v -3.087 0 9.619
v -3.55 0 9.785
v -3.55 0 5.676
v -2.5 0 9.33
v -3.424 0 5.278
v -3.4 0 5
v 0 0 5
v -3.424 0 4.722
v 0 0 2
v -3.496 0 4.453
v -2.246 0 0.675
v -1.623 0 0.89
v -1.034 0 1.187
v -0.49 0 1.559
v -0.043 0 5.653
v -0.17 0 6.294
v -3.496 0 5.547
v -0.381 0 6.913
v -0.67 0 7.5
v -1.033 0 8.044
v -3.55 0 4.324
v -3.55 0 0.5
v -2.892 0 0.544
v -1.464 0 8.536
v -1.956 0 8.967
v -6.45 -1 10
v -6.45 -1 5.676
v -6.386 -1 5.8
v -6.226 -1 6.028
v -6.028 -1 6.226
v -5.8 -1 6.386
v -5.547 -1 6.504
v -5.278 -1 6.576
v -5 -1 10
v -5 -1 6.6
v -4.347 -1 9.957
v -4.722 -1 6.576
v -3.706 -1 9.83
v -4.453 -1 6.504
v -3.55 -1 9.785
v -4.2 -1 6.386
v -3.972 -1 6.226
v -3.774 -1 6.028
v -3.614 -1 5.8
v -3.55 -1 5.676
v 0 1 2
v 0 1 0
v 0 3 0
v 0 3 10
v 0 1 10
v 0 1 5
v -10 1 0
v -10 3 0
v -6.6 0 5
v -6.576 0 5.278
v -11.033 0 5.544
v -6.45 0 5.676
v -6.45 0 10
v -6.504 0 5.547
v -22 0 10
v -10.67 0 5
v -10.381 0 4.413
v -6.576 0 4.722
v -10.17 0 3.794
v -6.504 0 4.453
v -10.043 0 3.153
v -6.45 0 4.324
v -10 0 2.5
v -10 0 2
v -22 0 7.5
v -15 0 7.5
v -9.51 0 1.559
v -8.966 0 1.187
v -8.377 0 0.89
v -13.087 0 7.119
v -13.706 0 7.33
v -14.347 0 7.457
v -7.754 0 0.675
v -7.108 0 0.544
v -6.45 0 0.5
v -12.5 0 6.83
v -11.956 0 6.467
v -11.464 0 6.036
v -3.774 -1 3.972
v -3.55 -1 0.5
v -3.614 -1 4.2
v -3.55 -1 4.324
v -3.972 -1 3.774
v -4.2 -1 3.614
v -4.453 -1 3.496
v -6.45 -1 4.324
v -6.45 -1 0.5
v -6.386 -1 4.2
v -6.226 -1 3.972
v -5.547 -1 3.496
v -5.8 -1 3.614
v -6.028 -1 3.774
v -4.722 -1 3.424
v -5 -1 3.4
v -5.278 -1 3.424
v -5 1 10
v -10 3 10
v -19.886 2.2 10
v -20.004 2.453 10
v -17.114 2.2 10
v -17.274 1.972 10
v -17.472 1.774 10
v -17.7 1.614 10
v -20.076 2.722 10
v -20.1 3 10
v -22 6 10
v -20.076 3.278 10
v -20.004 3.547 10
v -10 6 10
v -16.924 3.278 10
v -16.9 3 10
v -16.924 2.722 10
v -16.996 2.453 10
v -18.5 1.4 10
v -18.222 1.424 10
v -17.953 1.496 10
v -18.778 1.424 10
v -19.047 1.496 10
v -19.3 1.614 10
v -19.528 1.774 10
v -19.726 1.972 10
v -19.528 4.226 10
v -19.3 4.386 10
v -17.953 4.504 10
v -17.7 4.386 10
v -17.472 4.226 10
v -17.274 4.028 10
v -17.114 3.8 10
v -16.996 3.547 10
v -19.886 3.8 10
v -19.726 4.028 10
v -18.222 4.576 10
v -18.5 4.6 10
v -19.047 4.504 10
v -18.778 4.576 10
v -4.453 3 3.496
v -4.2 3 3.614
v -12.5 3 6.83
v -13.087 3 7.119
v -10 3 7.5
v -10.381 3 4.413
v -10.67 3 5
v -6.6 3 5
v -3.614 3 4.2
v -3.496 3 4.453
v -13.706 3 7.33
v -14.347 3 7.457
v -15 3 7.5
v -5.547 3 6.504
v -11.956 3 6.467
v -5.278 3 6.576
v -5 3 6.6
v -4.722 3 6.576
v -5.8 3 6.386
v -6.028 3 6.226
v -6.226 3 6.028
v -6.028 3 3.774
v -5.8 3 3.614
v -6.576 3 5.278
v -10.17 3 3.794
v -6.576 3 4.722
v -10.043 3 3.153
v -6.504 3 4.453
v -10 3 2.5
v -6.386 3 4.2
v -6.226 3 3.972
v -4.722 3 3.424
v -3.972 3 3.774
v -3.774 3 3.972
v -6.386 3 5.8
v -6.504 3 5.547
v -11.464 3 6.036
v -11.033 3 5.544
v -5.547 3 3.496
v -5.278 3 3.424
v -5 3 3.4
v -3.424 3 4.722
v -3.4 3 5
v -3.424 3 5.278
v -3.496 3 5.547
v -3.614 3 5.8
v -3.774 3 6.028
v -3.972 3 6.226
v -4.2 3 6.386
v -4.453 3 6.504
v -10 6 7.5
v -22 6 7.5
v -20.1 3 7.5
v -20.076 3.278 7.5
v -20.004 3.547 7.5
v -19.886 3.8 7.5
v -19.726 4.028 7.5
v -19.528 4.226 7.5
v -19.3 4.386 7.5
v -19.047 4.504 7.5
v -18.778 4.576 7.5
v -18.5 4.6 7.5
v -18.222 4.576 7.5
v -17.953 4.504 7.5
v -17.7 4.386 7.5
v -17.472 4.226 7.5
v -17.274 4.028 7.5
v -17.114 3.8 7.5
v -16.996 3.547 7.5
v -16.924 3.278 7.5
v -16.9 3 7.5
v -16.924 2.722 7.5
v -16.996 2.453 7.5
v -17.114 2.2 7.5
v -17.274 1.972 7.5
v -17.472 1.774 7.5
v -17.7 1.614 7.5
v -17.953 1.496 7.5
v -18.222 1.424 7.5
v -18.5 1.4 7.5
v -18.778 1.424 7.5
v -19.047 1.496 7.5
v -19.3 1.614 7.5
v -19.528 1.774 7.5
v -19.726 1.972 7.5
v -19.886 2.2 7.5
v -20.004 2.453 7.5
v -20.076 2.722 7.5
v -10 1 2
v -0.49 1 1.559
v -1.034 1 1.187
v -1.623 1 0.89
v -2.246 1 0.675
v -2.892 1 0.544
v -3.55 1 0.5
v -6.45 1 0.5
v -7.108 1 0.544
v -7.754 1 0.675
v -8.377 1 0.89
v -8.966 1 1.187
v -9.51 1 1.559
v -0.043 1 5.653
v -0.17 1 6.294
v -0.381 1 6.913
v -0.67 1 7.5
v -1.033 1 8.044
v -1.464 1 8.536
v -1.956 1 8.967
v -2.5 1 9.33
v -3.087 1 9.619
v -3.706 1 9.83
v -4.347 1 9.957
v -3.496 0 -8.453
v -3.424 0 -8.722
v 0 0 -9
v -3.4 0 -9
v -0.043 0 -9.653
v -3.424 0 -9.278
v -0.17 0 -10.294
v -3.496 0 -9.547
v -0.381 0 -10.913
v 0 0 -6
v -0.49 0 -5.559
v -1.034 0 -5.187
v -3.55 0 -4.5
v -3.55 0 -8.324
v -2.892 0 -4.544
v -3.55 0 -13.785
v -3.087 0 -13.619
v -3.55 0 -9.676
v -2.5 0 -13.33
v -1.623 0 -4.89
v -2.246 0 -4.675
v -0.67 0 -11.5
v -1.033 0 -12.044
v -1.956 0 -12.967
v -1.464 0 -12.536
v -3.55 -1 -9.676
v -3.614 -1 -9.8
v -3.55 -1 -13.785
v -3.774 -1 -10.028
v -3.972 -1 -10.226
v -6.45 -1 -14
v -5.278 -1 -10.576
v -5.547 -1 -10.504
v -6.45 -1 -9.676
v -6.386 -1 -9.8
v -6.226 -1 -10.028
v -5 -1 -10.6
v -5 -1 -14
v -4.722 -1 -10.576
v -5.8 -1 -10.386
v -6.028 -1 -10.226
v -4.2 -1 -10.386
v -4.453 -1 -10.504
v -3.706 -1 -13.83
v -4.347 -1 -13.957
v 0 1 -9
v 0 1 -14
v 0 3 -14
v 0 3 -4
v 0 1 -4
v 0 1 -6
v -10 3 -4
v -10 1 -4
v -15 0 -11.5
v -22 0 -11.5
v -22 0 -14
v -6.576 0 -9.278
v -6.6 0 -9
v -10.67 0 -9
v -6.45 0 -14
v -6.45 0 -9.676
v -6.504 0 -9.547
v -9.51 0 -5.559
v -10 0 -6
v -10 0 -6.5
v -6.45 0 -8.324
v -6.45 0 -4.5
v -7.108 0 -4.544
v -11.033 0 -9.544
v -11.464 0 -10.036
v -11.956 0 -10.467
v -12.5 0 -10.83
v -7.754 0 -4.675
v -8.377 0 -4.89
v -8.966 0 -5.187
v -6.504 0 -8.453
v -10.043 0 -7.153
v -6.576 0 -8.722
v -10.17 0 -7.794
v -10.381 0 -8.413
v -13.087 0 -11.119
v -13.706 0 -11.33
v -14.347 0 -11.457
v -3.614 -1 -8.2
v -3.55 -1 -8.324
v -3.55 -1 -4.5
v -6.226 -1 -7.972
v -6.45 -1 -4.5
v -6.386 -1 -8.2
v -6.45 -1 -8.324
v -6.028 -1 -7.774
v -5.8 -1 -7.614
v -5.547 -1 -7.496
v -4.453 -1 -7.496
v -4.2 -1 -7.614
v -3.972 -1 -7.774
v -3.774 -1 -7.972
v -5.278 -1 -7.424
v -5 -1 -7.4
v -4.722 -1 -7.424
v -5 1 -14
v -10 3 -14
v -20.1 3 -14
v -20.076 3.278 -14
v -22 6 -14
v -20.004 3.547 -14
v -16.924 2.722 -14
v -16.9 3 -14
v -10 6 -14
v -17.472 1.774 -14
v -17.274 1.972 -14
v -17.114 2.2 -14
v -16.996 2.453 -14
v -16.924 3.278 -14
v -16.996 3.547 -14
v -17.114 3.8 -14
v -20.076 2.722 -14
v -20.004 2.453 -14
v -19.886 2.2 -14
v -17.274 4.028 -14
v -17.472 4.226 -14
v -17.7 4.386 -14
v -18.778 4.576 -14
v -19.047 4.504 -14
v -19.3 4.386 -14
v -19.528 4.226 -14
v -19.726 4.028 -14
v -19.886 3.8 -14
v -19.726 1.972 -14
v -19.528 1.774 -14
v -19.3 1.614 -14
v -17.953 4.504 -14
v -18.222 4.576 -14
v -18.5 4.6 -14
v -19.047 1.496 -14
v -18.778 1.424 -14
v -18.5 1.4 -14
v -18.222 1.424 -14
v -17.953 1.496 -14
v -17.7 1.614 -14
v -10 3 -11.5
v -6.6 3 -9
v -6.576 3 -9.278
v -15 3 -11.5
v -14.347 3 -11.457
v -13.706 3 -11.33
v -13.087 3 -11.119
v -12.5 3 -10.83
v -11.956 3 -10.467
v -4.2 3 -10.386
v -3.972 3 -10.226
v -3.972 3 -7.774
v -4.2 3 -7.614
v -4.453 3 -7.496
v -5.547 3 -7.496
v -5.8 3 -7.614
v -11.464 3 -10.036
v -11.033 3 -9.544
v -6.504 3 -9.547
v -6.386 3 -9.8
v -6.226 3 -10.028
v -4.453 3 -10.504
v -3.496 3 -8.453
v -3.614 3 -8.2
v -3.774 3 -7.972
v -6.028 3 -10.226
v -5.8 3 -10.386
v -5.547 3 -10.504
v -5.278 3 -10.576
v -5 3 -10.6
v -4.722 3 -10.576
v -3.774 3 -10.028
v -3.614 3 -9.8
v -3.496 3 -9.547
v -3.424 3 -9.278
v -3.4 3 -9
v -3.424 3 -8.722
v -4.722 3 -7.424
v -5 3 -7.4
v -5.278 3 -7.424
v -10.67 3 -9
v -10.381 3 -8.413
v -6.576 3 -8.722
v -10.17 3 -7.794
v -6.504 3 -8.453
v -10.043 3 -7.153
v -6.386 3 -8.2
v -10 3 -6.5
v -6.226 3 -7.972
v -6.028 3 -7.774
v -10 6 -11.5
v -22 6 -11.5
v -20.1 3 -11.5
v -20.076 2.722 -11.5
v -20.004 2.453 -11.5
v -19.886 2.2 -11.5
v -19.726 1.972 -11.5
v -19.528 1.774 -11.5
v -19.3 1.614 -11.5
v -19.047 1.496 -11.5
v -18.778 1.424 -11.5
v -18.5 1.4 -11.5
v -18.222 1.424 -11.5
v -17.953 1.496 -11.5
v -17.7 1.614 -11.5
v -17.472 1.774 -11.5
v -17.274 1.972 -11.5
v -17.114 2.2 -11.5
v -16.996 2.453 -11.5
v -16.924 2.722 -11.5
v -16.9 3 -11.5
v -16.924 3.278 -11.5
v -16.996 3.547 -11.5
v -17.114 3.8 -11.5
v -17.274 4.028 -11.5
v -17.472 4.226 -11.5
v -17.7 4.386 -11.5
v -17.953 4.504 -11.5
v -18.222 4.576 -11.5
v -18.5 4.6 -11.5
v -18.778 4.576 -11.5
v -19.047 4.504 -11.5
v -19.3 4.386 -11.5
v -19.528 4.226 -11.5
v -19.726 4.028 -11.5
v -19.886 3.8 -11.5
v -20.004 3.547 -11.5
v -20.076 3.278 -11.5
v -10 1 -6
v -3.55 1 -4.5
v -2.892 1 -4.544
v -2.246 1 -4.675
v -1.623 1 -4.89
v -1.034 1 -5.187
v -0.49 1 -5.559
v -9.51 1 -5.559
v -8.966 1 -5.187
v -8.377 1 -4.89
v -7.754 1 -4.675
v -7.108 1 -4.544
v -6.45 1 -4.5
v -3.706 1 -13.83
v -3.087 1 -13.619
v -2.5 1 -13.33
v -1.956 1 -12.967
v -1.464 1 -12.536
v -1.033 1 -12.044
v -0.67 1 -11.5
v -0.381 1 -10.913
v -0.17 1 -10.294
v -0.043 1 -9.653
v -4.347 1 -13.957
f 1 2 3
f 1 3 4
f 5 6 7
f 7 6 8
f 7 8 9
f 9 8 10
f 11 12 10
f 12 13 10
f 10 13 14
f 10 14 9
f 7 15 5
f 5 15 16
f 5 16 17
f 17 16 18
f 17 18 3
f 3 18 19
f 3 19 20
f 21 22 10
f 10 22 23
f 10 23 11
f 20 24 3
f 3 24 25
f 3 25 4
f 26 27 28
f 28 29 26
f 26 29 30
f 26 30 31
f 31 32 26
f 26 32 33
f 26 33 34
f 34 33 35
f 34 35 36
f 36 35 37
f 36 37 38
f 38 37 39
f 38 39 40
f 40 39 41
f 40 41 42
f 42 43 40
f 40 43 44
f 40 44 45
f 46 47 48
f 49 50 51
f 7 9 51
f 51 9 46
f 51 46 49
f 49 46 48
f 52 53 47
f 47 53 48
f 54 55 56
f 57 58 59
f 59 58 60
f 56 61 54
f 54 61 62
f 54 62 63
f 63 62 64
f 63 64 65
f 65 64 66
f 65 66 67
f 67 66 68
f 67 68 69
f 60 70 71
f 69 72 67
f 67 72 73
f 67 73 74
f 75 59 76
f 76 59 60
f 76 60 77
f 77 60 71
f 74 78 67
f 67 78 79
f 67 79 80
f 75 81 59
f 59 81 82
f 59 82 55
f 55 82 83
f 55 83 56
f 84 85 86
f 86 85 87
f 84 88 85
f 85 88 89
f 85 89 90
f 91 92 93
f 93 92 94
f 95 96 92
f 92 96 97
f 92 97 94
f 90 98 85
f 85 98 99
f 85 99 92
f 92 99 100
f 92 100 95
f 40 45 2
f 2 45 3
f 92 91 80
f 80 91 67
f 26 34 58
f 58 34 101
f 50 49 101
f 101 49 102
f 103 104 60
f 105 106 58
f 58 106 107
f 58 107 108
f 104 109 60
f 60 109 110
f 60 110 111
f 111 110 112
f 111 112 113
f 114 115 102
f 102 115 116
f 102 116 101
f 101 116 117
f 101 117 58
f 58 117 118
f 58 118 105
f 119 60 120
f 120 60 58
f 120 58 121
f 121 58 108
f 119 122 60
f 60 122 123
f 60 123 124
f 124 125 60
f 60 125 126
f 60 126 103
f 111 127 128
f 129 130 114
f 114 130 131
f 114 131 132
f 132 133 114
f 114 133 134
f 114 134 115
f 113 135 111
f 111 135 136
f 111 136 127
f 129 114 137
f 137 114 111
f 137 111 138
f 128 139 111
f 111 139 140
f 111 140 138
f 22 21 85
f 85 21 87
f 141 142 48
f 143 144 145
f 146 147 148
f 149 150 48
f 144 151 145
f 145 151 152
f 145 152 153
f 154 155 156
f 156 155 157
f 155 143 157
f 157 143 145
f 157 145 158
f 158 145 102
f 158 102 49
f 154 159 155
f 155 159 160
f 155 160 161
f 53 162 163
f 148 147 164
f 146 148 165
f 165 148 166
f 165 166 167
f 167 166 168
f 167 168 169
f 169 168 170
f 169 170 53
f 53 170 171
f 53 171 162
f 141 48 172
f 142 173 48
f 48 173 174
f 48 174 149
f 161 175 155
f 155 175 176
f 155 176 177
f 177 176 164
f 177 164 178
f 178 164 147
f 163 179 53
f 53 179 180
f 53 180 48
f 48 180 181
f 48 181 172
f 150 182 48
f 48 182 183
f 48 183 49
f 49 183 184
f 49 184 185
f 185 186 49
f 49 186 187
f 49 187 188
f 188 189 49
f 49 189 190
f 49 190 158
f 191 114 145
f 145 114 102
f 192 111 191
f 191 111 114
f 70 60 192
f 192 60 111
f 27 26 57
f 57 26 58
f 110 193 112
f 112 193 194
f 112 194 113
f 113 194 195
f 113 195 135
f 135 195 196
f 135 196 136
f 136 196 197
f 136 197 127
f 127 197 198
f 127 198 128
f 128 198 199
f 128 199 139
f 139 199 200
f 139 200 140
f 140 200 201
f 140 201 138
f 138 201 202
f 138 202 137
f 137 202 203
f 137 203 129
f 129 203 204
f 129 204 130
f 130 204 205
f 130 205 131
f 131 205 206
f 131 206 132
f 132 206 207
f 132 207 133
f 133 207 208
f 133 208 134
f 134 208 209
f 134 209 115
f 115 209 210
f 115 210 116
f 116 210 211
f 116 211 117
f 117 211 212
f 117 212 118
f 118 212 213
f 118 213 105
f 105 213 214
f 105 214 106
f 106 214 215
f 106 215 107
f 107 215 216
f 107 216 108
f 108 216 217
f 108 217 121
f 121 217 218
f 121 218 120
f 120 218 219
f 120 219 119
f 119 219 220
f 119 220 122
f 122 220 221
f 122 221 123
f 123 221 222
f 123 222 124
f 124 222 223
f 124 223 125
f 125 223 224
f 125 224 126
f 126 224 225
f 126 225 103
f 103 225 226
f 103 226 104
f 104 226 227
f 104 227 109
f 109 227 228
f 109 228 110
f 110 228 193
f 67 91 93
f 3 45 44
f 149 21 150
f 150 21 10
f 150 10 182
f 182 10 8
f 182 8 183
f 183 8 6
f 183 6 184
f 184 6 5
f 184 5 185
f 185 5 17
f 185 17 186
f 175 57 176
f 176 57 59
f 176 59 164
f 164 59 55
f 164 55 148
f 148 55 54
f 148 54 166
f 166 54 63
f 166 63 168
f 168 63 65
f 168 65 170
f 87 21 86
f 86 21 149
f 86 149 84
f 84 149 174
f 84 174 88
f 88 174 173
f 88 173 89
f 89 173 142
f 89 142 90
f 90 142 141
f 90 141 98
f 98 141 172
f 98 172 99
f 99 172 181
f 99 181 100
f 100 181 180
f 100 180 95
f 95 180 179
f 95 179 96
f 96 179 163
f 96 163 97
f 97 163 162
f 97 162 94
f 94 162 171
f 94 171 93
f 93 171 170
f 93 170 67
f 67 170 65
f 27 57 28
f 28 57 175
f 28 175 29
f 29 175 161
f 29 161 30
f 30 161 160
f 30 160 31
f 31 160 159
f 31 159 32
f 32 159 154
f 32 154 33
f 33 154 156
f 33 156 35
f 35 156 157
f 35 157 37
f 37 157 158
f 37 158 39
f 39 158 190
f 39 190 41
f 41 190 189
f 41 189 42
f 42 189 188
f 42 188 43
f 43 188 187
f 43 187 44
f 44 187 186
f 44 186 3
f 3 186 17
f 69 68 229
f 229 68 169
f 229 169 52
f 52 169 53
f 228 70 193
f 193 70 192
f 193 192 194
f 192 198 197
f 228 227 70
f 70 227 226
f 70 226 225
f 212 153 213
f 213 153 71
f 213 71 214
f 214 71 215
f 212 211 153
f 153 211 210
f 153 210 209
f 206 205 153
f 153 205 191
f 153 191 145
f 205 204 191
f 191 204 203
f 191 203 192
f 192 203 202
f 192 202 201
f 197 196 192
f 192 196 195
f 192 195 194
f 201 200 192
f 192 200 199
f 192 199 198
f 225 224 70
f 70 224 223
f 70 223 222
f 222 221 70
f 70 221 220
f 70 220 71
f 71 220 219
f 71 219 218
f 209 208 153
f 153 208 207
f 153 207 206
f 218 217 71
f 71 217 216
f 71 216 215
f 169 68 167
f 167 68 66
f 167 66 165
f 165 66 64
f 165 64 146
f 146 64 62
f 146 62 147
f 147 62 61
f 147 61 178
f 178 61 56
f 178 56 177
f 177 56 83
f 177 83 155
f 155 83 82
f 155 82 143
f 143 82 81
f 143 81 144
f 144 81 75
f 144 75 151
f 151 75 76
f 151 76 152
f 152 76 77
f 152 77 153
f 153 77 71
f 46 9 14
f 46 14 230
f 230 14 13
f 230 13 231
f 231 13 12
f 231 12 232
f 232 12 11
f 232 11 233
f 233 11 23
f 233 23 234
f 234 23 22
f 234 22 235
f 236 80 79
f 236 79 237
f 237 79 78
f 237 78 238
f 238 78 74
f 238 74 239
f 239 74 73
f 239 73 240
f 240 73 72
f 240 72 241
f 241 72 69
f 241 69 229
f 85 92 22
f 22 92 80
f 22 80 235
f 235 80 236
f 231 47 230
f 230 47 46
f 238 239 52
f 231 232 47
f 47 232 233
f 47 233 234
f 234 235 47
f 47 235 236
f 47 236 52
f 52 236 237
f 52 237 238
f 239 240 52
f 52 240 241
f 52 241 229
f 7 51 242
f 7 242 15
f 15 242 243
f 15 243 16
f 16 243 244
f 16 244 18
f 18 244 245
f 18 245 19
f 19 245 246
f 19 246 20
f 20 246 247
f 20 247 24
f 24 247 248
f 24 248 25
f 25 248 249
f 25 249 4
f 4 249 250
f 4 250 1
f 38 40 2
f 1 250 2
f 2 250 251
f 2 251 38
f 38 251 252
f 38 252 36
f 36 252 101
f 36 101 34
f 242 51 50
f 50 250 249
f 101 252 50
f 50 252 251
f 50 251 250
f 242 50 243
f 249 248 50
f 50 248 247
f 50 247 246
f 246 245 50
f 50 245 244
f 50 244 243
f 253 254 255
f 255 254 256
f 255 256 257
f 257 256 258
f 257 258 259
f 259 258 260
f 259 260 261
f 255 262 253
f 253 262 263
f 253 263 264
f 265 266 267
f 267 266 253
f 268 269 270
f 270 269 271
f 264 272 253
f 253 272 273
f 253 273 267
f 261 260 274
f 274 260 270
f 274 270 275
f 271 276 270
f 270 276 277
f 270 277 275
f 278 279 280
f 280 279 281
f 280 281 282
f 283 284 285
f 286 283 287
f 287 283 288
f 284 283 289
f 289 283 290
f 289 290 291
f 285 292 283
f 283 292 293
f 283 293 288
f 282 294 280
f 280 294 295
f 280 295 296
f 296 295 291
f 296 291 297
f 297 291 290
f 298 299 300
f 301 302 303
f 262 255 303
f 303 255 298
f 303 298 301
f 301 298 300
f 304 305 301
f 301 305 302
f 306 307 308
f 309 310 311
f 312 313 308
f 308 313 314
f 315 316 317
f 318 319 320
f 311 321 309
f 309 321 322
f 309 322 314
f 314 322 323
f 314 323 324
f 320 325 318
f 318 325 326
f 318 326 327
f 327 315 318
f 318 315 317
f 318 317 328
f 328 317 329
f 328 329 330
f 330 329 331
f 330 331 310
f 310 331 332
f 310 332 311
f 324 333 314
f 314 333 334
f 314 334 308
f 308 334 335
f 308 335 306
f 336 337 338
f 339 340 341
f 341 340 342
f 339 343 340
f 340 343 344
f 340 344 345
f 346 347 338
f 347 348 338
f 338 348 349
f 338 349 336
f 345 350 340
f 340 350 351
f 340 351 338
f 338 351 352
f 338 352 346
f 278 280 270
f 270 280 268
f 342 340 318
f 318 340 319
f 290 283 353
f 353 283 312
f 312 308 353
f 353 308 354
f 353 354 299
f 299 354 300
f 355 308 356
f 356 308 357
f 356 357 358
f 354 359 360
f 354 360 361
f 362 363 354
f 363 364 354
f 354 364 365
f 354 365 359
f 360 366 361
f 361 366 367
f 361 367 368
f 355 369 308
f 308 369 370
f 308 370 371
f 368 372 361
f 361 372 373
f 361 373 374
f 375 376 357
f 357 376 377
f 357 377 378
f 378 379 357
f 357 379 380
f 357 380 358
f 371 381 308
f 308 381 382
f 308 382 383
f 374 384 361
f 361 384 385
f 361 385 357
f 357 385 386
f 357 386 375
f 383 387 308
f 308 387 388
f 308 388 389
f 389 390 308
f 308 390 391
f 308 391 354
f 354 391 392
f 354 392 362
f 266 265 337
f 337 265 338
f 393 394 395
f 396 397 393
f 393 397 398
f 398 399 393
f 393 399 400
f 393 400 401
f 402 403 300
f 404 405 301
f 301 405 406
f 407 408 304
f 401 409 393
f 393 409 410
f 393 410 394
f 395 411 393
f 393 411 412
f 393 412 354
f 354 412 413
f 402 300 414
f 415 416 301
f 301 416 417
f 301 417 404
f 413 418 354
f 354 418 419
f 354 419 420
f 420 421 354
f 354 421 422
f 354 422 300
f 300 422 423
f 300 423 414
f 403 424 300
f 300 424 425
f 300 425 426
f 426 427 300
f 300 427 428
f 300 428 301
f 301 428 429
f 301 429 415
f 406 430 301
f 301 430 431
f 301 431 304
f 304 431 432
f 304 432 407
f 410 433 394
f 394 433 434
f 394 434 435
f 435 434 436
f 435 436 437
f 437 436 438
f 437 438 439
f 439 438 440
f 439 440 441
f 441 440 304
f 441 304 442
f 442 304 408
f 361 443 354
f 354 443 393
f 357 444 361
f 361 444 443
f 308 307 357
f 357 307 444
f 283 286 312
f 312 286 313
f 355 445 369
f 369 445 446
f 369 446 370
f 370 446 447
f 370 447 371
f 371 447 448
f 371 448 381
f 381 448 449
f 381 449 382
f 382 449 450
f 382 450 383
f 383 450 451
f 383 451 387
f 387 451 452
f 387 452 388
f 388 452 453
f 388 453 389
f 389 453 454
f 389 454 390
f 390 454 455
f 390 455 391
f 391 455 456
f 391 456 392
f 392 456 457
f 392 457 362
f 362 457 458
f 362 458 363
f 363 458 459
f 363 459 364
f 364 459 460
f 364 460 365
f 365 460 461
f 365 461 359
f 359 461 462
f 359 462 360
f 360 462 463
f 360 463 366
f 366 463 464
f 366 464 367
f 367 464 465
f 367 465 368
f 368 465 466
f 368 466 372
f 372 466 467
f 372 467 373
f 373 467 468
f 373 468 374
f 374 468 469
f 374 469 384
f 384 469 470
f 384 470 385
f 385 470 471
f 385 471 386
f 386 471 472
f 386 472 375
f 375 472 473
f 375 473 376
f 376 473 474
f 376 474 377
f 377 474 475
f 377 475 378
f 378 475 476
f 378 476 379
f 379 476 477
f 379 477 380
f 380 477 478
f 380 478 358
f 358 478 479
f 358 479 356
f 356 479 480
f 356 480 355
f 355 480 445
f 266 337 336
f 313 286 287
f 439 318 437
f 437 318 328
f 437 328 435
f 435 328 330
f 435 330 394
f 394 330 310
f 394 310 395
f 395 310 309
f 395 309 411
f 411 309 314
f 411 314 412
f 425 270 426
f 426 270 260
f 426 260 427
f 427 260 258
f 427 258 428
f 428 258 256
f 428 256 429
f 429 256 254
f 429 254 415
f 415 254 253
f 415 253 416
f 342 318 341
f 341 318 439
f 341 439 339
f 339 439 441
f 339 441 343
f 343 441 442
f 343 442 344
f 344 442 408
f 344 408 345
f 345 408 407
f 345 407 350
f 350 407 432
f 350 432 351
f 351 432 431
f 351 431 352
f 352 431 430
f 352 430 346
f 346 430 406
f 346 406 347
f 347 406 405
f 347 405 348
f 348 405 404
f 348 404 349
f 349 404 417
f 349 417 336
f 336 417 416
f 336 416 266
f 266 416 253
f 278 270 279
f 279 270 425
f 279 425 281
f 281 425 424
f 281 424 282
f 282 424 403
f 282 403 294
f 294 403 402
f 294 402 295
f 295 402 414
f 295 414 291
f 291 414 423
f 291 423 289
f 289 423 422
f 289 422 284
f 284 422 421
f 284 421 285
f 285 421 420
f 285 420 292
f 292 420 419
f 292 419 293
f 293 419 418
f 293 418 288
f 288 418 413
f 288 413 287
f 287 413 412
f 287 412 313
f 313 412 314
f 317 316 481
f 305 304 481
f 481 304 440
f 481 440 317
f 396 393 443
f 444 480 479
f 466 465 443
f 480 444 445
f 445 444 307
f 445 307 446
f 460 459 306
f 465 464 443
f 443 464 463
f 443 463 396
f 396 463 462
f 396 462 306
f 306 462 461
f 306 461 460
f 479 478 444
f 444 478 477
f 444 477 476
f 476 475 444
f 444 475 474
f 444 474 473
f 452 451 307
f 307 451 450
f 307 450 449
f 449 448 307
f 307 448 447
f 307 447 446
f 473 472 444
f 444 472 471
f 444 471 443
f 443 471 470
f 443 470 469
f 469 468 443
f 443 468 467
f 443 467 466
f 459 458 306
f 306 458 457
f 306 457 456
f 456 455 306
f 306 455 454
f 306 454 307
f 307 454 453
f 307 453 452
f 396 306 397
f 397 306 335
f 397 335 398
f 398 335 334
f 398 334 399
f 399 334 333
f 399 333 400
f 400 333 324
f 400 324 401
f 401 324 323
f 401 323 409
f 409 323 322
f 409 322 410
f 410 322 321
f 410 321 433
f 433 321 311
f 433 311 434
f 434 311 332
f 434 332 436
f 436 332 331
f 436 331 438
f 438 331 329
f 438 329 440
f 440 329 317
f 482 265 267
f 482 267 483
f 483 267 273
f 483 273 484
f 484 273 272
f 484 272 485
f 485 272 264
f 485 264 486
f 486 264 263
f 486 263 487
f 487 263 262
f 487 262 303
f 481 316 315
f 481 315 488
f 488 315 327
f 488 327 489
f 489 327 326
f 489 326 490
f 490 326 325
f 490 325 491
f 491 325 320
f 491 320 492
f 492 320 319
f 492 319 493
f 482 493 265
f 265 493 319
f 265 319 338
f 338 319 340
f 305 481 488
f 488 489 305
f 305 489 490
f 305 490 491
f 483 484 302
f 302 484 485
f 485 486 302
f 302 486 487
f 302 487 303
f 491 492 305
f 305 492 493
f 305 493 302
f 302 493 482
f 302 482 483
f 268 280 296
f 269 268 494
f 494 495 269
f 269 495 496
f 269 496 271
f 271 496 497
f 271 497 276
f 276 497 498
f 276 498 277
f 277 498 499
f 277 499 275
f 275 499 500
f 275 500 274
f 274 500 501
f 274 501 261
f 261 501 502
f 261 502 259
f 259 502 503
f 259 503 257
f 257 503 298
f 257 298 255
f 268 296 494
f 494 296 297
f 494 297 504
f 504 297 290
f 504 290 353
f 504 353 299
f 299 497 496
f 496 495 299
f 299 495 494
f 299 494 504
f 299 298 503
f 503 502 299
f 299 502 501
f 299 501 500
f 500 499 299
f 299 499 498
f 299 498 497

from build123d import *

# Parameters (mm, degrees)
SKETCH1_R          = 1.6
MAIN_DEPTH         = 10
SKETCH2_R          = 1.6
TOPHOLE_DEPTH      = 5
SKETCH3_W          = 12
SKETCH3_H          = 7.5
CUT_EXTRUDE2_DEPTH = 8
FILLET1_R          = 5
CUT_EXTRUDE5_DEPTH = 2


with BuildPart() as part:
    # Sketch1 → Main (new body)
    with BuildSketch(Plane.XY):
        Polygon((0, 0), (-3.55, 0), (-3.55, -1), (-6.45, -1), (-6.45, 0), (-22, 0), (-22, 6), (-10, 6), (-10, 3), (0, 3), align=None)
        with Locations((-18.5, 3)):
            Circle(SKETCH1_R, mode=Mode.SUBTRACT)
    extrude(amount=MAIN_DEPTH)

    # Sketch2 → TopHole (cut, through all)
    with BuildSketch(Plane(origin=(0, 3, 0), x_dir=(1, 0, 0), z_dir=(0, 1, 0))):
        with Locations((-5, -5)):
            Circle(SKETCH2_R)
    extrude(amount=-TOPHOLE_DEPTH, mode=Mode.SUBTRACT)

    # Sketch3 → Cut-Extrude2 (cut, through all)
    with BuildSketch(Plane(origin=(0, 6, 0), x_dir=(1, 0, 0), z_dir=(0, 1, 0))):
        with Locations((-16, -3.75)):
            Rectangle(SKETCH3_W, SKETCH3_H)
    extrude(amount=-CUT_EXTRUDE2_DEPTH, mode=Mode.SUBTRACT)

    # Fillet1
    fillet1_edges = [part.edges().sort_by_distance(p)[0] for p in [
        (-10, 1.5, 7.5),
    ]]
    fillet(fillet1_edges, radius=FILLET1_R)

    # Sketch5 → Cut-Extrude5 (cut)
    with BuildSketch(Plane.XZ.offset(1)):
        with BuildLine():
            Line((-3.55, 0.5), (-6.45, 0.5))
            ThreePointArc((-6.45, 0.5), (-8.376947067, 0.890391941), (-10, 2))
            Line((-10, 2), (-10, 0))
            Line((-10, 0), (0, 0))
            Line((0, 0), (0, 2))
            ThreePointArc((0, 2), (-1.623052933, 0.890391941), (-3.55, 0.5))
        make_face()
        with BuildLine():
            Line((0, 5), (0, 10))
            Line((0, 10), (-5, 10))
            ThreePointArc((-5, 10), (-1.464466094, 8.535533906), (0, 5))
        make_face()
    extrude(amount=-CUT_EXTRUDE5_DEPTH, mode=Mode.SUBTRACT)


with BuildPart() as body_2:
    # Mirror5: mirrored copy
    add(part.part.mirror(Plane.XY.offset(-2)))


solid = Compound([part.part, body_2.part])
